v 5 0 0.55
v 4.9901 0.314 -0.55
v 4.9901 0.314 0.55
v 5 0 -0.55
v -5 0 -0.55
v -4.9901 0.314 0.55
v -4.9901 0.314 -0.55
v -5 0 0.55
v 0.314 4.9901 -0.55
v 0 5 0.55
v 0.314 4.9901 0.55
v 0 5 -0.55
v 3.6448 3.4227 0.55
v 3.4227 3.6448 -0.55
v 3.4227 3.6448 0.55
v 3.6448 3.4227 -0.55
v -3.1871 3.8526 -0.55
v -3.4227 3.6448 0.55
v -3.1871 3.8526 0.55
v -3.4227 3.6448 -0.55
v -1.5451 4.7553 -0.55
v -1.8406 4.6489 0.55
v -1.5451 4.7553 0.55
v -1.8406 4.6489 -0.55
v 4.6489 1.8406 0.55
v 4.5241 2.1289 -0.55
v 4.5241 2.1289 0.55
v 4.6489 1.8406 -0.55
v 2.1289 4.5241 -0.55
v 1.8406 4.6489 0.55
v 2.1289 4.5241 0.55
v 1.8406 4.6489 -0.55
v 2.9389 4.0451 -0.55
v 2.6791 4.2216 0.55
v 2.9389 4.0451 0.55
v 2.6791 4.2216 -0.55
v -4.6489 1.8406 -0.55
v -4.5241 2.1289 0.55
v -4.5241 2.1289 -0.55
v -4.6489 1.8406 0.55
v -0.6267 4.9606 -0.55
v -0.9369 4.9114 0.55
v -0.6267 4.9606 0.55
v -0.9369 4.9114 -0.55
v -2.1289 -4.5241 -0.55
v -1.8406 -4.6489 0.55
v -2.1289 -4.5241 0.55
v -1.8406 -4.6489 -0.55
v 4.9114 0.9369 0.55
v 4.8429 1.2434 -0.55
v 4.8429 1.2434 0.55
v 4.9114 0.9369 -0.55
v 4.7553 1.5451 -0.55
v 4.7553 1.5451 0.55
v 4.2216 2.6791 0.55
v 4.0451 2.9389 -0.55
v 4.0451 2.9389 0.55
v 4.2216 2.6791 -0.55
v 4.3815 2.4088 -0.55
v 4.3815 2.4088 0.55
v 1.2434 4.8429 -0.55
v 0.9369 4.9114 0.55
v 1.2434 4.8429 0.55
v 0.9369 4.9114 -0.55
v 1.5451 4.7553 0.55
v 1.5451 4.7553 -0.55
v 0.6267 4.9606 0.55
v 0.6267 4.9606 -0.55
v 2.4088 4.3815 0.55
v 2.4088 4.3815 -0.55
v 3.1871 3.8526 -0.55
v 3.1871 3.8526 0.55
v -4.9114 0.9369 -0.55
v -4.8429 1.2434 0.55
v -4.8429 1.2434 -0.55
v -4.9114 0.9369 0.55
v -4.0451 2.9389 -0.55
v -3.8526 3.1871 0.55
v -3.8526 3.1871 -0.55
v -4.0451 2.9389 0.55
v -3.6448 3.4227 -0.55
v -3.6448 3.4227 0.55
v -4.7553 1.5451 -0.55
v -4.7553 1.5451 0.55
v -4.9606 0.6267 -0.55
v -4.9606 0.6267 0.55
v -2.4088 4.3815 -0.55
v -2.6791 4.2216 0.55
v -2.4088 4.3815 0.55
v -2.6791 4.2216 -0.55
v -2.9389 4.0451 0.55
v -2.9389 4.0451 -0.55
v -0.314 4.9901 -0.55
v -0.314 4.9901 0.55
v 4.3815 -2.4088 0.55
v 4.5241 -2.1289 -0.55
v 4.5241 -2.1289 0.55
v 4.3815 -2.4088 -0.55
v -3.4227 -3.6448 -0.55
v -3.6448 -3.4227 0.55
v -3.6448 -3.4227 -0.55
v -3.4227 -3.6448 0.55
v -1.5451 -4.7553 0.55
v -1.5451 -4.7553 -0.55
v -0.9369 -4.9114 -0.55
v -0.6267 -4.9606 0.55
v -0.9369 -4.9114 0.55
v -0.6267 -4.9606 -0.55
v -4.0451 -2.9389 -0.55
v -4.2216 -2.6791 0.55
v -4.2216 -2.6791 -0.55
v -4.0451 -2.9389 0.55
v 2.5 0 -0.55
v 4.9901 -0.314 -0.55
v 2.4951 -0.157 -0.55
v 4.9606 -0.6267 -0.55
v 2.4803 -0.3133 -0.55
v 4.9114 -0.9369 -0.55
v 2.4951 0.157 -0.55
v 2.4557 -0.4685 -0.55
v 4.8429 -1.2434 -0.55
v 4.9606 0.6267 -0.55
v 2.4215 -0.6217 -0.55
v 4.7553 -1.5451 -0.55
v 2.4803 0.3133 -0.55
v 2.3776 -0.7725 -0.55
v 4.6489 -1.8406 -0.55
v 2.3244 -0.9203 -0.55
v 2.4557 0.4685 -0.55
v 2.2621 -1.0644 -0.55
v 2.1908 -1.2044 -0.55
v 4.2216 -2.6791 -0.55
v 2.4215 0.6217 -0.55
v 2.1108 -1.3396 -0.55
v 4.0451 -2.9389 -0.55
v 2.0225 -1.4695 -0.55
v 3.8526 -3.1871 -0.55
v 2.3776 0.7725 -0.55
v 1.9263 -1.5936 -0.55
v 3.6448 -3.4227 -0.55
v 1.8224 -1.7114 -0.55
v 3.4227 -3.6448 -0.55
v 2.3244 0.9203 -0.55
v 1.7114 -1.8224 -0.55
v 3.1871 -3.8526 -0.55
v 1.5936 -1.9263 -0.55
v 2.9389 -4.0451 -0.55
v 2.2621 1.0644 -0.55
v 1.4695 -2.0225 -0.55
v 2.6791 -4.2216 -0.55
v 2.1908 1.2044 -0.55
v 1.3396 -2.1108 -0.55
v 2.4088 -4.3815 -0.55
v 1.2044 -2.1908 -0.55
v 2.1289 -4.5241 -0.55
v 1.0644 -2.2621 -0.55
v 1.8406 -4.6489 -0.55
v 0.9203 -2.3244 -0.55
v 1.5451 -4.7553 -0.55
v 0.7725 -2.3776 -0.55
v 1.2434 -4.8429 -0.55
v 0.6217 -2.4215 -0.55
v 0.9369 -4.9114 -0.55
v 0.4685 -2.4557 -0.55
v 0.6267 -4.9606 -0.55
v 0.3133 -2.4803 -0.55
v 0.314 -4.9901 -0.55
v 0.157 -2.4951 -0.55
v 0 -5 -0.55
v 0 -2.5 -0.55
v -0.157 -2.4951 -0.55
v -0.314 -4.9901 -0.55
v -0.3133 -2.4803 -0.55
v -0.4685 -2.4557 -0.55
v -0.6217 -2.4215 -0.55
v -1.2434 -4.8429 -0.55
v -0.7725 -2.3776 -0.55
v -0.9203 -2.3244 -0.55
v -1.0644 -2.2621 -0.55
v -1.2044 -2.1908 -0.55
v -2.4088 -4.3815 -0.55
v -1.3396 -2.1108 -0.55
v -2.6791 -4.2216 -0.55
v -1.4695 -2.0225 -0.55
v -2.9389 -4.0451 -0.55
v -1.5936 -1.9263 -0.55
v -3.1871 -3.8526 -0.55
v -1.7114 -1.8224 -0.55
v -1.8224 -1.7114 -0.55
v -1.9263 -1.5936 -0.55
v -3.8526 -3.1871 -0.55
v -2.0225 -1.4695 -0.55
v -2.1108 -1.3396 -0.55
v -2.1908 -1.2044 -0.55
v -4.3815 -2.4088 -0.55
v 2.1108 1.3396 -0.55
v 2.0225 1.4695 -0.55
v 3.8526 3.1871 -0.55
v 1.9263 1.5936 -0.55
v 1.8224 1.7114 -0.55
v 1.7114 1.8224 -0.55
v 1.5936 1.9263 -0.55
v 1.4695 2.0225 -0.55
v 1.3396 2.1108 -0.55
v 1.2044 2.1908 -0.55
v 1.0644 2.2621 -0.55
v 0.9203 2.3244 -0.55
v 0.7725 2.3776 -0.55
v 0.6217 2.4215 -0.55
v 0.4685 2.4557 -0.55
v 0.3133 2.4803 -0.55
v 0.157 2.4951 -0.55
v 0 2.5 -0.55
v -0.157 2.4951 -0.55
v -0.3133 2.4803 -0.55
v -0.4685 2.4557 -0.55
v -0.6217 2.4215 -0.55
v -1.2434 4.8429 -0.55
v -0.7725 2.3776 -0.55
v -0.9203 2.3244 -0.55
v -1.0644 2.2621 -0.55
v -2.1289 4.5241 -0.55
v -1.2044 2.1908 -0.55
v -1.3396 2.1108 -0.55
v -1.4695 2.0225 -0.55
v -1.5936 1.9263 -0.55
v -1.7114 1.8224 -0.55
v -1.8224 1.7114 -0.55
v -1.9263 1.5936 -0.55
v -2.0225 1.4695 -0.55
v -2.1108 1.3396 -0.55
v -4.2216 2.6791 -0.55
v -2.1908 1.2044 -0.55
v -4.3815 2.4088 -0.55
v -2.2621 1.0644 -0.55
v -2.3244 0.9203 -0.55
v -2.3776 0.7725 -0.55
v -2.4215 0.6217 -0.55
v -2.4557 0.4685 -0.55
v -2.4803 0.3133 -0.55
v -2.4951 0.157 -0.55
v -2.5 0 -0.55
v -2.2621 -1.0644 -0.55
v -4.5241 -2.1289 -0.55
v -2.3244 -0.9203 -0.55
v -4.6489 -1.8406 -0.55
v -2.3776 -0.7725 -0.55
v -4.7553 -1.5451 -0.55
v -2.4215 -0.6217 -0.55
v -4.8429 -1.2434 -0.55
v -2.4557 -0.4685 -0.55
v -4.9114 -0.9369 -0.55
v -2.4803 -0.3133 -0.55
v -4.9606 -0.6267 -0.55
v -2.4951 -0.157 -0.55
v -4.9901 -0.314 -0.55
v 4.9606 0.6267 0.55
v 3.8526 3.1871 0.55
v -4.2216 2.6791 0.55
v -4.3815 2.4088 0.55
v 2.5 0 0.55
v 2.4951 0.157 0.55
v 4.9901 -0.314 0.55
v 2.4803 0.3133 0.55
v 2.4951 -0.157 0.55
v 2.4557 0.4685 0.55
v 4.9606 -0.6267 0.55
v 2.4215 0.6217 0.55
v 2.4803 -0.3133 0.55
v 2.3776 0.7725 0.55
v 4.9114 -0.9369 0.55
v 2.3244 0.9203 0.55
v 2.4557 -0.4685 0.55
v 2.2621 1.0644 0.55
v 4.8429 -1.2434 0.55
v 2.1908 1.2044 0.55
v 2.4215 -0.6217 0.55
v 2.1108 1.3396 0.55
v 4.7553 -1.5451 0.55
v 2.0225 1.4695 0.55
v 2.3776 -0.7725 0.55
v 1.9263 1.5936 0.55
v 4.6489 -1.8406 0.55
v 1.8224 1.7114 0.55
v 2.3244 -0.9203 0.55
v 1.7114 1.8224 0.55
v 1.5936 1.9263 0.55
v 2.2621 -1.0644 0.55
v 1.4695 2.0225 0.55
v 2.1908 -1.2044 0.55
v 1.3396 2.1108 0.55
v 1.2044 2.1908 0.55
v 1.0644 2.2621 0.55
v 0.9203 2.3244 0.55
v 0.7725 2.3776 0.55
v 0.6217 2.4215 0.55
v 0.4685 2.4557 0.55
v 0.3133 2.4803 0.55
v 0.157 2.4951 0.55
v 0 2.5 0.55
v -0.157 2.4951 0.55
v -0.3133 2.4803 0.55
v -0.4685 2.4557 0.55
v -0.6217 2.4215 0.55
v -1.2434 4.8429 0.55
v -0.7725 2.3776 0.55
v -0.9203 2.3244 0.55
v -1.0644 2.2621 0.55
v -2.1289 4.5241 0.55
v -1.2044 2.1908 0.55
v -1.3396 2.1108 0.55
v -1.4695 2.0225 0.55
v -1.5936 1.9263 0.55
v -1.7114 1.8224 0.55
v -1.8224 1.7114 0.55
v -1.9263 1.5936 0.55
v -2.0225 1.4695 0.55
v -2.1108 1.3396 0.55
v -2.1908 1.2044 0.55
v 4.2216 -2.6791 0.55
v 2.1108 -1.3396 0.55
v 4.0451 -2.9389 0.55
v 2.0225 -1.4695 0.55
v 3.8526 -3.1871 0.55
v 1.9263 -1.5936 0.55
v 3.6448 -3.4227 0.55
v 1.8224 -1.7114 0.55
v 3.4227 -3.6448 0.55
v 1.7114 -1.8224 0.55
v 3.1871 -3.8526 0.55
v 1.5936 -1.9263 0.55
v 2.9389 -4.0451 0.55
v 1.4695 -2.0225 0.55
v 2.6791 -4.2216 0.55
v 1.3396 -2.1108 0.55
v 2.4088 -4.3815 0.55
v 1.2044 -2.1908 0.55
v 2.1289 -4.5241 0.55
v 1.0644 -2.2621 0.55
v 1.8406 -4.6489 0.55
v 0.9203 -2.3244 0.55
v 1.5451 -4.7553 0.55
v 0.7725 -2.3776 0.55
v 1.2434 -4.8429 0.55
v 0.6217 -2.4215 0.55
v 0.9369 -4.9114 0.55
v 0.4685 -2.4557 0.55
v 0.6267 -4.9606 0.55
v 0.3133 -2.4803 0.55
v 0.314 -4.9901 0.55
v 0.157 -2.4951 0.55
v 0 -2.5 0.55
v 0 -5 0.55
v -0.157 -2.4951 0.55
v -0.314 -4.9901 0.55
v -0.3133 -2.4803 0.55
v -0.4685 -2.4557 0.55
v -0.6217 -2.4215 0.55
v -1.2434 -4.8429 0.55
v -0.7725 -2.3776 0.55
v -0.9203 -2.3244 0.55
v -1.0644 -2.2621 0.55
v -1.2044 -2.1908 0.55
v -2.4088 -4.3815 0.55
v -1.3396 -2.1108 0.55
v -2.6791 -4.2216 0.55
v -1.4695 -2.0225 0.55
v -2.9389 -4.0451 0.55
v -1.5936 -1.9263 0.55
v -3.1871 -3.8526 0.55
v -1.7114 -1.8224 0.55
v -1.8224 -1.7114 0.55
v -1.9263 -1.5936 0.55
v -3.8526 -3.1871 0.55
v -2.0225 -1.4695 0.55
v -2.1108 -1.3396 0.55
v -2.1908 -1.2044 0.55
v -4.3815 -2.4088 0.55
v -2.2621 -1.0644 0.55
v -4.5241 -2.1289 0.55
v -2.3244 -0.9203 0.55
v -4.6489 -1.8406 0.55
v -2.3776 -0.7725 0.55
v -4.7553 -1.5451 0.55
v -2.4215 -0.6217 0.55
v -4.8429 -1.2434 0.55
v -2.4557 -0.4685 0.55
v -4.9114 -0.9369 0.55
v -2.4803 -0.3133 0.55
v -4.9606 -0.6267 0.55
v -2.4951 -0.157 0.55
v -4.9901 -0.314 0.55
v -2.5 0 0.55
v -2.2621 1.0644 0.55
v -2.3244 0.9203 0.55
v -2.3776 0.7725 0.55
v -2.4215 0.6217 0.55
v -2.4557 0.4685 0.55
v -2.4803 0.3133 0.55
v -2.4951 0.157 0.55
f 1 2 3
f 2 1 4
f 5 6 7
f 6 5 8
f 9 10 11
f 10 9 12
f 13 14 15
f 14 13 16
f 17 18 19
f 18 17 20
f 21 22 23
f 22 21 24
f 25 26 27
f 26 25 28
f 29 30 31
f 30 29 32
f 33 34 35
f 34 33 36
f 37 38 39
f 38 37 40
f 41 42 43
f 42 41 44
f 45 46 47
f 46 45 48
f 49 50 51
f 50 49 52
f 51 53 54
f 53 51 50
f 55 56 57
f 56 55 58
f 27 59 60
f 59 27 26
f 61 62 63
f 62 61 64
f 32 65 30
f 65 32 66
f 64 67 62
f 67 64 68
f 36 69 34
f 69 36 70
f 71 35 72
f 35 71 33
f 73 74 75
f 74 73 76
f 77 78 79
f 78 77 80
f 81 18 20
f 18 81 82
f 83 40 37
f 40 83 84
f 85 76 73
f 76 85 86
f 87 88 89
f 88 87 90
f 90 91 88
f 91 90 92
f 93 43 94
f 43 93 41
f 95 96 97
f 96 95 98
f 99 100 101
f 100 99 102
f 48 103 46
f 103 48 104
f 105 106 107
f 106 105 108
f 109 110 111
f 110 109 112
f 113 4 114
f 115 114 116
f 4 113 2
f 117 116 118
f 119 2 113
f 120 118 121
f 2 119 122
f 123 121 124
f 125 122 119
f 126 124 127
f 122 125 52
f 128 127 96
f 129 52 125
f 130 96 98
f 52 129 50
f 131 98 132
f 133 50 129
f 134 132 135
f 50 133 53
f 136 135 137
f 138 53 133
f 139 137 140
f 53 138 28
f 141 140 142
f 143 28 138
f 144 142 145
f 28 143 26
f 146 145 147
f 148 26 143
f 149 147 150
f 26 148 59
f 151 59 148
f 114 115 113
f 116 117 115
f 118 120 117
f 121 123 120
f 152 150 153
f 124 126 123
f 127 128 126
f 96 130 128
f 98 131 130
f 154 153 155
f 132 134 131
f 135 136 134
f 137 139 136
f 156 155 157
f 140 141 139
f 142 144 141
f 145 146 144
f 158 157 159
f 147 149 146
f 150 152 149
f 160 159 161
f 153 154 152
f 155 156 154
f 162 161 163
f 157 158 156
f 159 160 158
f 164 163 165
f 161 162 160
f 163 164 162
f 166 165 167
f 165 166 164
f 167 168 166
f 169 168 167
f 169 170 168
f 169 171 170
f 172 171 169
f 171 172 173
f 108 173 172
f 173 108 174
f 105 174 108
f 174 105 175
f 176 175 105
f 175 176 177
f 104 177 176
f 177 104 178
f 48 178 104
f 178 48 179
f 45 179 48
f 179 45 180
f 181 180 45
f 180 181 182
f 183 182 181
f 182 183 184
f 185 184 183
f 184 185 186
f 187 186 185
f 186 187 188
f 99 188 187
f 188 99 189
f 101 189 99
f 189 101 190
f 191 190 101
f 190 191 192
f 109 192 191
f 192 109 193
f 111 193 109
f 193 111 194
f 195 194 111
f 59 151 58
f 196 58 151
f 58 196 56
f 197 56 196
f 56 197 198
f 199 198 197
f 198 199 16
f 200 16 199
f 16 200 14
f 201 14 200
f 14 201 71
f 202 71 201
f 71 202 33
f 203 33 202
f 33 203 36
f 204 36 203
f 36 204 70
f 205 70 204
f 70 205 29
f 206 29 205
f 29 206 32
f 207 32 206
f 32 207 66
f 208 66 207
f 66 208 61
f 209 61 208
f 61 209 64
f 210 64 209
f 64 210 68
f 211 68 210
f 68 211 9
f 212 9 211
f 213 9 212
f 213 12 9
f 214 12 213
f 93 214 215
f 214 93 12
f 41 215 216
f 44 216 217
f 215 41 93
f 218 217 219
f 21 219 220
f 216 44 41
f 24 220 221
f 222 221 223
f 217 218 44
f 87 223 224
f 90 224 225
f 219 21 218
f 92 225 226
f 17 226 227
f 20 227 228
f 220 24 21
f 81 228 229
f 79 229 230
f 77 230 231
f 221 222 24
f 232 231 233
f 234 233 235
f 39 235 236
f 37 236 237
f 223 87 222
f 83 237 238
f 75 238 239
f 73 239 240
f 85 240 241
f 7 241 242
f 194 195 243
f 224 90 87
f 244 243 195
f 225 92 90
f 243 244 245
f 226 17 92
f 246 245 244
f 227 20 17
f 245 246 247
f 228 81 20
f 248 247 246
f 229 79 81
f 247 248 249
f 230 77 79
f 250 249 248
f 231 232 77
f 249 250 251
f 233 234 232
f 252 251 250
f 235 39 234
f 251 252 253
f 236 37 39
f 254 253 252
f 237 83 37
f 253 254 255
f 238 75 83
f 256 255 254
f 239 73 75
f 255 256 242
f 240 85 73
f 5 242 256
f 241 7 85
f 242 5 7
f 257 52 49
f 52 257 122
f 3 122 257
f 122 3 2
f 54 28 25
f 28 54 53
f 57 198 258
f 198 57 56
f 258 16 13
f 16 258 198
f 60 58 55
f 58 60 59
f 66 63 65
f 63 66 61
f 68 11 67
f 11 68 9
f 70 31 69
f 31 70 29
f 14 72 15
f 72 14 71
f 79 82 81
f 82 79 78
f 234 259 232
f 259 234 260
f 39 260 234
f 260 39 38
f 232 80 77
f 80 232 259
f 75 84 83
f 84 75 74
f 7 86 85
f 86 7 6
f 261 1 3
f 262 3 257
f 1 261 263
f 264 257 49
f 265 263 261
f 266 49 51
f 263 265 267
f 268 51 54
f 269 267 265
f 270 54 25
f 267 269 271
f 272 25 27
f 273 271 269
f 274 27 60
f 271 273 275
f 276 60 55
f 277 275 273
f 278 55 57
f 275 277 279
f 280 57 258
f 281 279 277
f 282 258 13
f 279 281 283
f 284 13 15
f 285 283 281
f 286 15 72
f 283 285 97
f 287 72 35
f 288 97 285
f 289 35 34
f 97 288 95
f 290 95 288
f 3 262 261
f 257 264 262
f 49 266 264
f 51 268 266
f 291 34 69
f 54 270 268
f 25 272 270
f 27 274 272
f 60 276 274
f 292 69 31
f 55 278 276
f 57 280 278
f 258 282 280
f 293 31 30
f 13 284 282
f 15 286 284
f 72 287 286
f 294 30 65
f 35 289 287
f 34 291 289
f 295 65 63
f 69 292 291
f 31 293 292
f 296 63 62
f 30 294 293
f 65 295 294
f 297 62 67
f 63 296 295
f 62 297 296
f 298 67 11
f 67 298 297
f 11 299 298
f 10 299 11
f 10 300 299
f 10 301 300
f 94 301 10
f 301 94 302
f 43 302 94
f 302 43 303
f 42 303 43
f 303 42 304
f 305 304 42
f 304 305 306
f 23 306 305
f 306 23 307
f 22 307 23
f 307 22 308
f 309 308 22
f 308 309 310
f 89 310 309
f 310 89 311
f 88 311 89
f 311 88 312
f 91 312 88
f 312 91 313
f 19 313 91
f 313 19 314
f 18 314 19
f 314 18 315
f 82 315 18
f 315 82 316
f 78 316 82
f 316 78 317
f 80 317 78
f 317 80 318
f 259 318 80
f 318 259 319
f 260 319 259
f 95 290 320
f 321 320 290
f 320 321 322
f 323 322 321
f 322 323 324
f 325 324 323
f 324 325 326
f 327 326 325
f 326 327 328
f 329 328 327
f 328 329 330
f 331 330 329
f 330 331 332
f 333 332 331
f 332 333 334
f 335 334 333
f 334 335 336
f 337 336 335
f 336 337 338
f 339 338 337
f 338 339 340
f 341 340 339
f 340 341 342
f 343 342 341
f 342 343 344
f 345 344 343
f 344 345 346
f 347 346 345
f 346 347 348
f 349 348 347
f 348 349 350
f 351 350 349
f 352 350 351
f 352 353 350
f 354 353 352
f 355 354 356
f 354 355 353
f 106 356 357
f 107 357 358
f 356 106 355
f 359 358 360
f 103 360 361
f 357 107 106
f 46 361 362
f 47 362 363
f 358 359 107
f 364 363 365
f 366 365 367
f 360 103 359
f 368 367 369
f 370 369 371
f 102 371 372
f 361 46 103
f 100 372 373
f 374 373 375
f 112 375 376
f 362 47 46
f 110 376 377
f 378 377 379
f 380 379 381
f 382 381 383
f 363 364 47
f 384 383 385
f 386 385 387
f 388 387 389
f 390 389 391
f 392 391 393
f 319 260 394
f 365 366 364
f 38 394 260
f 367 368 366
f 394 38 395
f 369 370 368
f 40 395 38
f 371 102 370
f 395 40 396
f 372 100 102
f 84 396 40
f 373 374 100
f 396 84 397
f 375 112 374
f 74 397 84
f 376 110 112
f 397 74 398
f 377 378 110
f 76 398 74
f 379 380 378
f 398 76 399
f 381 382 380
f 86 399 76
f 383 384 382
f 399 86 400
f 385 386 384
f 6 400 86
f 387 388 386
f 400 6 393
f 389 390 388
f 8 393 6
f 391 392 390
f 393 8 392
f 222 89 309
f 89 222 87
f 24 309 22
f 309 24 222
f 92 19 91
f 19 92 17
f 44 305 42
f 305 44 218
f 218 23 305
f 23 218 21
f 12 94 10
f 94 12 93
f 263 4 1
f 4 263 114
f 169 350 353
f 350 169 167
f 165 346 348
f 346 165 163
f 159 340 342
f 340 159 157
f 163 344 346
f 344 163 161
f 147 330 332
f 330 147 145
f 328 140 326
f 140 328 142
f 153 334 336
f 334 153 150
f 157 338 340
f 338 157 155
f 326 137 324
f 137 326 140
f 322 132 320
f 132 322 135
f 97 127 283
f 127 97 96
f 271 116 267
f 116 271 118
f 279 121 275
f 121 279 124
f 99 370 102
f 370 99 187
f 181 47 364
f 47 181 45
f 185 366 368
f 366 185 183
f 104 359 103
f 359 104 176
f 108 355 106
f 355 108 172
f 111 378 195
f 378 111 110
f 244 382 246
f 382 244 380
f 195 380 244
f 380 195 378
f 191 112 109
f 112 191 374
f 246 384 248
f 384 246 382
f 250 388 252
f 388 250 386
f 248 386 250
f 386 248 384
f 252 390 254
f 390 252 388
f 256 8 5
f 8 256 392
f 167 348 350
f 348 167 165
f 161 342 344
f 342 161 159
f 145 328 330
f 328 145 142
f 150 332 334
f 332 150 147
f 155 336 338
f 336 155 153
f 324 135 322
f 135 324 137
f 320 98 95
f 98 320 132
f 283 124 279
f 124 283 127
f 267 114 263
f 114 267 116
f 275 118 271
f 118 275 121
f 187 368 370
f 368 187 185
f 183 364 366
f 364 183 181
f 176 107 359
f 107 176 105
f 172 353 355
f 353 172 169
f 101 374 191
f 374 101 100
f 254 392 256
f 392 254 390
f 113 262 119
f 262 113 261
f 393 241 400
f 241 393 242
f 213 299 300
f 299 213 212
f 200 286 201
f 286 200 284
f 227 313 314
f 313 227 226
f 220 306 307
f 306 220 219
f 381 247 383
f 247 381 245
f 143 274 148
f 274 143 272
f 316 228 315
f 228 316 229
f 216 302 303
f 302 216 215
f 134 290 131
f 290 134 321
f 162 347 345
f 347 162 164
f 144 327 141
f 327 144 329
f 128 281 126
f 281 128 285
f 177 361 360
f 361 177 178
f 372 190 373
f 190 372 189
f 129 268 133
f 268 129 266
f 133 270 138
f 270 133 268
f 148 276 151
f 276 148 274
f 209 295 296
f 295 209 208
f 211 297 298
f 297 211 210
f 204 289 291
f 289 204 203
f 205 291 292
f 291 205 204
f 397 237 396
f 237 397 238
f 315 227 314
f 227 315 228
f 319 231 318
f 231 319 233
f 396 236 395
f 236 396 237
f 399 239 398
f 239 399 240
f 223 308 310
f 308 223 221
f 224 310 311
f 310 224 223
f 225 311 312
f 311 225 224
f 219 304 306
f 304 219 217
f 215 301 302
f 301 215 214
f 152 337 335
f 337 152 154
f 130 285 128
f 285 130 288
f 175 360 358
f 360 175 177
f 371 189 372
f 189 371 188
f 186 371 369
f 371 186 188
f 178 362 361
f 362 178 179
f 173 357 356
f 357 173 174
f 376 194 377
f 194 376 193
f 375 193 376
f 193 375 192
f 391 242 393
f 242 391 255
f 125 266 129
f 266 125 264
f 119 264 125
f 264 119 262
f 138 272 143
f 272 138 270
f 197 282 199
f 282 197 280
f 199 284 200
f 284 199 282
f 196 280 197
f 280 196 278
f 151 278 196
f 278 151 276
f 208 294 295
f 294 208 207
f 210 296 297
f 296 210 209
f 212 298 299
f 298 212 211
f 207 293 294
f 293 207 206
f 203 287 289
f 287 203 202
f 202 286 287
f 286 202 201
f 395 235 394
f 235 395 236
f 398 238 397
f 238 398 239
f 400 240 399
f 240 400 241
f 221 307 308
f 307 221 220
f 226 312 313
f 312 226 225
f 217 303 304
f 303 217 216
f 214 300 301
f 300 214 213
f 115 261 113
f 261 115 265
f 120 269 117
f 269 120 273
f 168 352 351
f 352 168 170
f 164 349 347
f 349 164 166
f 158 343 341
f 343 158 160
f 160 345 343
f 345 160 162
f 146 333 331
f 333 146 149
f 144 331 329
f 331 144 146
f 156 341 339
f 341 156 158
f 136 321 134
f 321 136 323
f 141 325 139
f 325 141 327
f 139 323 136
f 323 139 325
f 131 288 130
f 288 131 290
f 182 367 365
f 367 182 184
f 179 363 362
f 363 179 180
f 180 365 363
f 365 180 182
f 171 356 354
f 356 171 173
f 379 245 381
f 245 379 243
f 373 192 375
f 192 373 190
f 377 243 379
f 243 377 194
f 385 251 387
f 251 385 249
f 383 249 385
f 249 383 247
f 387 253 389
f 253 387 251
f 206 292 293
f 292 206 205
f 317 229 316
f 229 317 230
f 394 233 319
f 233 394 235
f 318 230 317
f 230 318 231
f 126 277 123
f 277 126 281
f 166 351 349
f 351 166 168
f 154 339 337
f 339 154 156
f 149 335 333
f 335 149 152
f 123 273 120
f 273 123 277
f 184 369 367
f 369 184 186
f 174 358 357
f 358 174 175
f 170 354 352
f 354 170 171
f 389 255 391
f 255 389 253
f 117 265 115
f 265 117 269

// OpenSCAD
// file: dim1.scad
//L'objet de ce fichier est de consigner les dimensions et les contraintes communes aux trois pieces de la e-poignee.
//Ces trois pieces sont fabriquees sur imprimante 3D, elles sont completees d'un Circuit Imprime (CI) et d'un isolateur.
//Le montage de l'ensemble est realise à l'aide d'un jeu de visserie compose
//de vis, de rondelles, d'un ecrou autobloquant et d'entretoises filetees.
//Les noms attribues a ces trois pieces sont la jupe, le top et le logo.
//Les dimensions relatives au CI sont exprimees en pouces et converties en mm à l'aide d'un Coefficient de Conversion (CC).
CC=25.4;//Coefficient de Conversion (pouce -> mm)
L1=1.6*CC;//longueur du CI
L2=1.3*CC;//entre axes des trous de fixation du CI
l1=1.2*CC;//largeur du CI
l2=0.9*CC;//entre axes des trous de fixation du CI
r=(0.125*CC)/2;//rayon de percage des trous de fixation du CI
e=0.1*CC;//epaisseur des parois
R=37.15;//Rayon du cercle de revolution du tore
//La premiere contrainte commune au logo et au top est la visibilite de l'embase USB.
//Cette visibilite est necessaire quand l'utilisateur etablit la connection du cable sur l'embase USB.
//La seconde contrainte est thermique, la temperature du couvercle peut atteindre des valeurs aux environ des 90°C.
//L'experience a montree que la matiere (PLA ou ABS) ramolie a ces temperatures.
//Cette contrainte est prise en compte par l'insertion de l'isolateur, elle concerne egalement la perimetre inferieur de la jupe.
// main file
$fn=100;
include <dim1.scad>
e1=2.2;
translate([0,0,0])difference(){
cylinder(e1/2,5,5,center=true);
cylinder(1.1*e1/2,2.5,2.5,center=true);
}
